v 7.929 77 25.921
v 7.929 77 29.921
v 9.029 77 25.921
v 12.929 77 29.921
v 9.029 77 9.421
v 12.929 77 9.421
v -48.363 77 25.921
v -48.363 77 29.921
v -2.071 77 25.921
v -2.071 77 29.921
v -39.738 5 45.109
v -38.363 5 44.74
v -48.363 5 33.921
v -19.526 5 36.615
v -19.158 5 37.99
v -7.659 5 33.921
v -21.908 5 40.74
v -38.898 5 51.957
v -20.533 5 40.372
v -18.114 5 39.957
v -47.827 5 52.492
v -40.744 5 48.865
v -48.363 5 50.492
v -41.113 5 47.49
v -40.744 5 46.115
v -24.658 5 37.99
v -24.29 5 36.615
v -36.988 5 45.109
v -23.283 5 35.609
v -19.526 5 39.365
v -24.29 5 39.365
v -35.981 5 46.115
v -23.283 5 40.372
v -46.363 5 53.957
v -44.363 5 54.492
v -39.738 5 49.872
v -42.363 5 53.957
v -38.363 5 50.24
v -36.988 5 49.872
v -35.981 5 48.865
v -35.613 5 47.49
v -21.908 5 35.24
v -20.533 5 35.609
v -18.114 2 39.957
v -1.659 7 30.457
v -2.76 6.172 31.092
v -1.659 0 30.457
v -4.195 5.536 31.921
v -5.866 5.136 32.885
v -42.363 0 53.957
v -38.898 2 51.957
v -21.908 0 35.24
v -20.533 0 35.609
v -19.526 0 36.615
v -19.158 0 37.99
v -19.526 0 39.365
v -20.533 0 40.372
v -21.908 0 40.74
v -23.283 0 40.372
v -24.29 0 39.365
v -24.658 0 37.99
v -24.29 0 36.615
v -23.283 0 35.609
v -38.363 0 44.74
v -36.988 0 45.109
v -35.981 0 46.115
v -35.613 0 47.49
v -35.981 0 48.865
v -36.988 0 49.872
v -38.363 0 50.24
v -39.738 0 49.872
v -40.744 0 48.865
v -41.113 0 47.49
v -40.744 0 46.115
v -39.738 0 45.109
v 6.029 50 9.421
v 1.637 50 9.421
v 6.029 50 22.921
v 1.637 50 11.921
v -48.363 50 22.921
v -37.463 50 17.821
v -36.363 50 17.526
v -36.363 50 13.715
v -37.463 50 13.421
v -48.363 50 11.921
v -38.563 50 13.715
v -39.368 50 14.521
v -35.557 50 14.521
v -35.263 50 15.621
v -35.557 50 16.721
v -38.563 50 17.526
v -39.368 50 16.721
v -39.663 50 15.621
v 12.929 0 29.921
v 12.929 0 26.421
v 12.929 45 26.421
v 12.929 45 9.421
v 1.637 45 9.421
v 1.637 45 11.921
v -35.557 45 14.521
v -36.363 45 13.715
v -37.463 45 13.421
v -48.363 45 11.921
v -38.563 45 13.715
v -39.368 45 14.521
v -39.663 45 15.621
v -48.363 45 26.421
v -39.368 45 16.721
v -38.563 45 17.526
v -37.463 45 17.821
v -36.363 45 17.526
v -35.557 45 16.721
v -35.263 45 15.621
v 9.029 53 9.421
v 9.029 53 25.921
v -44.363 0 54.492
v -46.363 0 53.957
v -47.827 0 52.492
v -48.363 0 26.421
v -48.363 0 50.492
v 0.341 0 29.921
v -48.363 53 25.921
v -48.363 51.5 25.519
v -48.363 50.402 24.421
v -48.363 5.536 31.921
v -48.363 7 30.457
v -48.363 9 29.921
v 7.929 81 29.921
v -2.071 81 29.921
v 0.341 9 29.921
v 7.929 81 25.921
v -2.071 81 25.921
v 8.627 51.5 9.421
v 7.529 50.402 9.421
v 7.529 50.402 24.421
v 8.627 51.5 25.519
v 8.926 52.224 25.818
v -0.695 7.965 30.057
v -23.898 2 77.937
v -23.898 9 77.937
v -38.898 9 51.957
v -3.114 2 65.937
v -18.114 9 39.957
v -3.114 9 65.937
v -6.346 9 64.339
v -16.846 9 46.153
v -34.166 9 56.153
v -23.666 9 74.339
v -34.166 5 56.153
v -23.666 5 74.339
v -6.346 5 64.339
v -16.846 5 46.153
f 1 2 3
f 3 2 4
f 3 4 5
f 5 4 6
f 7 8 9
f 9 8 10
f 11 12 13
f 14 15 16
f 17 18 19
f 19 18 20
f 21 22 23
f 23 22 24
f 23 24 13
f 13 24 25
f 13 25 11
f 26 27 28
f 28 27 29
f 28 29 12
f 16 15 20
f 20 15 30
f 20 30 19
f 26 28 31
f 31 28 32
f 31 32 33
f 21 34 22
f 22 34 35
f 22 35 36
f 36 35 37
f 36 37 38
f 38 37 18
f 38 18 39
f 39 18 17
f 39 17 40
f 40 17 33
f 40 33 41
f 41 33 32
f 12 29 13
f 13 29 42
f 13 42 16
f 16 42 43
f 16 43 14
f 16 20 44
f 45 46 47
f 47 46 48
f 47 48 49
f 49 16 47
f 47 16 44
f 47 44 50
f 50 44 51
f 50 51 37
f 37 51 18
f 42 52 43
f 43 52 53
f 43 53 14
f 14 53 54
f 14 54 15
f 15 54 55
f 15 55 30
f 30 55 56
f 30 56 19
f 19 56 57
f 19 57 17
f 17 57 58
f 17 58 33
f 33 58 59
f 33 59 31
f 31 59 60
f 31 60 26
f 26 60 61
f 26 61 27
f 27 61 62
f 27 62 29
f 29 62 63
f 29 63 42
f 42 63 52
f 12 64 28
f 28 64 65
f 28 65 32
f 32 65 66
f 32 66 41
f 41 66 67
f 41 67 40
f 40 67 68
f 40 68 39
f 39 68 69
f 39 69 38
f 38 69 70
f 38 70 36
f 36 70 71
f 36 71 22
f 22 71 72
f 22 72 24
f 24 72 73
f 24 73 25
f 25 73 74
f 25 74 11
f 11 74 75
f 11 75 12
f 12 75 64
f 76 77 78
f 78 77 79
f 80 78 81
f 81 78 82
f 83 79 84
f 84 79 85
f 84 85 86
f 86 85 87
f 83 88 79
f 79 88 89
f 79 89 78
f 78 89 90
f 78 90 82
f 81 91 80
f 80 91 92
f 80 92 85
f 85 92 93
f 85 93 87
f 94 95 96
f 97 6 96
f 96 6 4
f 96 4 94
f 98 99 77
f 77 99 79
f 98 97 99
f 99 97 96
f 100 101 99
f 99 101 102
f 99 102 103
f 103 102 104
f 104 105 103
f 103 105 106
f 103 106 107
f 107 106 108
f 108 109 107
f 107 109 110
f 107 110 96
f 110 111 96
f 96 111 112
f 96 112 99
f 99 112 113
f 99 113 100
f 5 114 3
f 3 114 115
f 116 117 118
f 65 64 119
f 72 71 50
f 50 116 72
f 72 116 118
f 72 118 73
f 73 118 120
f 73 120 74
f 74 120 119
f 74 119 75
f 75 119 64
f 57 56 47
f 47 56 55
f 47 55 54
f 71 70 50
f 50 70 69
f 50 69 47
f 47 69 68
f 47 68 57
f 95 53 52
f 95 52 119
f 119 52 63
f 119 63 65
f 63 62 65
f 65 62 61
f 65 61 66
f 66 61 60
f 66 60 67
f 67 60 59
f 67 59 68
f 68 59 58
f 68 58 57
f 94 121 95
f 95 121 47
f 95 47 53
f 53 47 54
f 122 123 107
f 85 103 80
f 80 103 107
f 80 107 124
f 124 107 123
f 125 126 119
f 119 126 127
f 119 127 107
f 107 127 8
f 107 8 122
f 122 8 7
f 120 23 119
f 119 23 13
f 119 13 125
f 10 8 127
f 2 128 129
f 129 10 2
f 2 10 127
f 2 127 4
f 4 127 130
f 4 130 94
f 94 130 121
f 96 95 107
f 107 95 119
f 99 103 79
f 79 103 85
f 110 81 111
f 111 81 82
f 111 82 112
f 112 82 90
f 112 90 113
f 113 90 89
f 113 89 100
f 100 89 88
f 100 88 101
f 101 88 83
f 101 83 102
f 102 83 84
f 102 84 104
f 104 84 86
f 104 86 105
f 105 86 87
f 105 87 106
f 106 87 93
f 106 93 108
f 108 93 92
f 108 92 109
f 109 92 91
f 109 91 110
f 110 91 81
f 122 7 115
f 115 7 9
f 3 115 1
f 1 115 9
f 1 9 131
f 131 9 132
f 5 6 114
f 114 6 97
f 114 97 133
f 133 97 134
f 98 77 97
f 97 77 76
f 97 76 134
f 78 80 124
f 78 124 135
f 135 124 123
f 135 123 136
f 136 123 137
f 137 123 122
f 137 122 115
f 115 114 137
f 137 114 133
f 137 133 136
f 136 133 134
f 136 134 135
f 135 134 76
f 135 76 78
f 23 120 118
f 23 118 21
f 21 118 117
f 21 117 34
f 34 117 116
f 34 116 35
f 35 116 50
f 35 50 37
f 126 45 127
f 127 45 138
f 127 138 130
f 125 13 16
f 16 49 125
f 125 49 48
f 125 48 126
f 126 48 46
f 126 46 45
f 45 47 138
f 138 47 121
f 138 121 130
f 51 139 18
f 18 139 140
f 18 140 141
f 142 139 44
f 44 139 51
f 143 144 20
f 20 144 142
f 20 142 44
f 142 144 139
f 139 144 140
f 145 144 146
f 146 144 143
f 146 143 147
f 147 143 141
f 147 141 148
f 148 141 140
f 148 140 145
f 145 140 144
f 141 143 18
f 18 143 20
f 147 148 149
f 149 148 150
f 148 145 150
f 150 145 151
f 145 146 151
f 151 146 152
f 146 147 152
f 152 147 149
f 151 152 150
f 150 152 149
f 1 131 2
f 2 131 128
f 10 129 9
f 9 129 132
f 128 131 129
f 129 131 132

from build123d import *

# Parameters (mm, degrees)
SKETCH1_R           = 2.75
BOSS_EXTRUDE1_DEPTH = 50
SKETCH2_R           = 2.2
BOSS_EXTRUDE2_DEPTH = 5
BOSS_EXTRUDE3_DEPTH = 32
SKETCH4_W           = 31.007197848
SKETCH4_H           = 89.787861365
CUT_EXTRUDE1_DEPTH  = 5
FILLET2_R           = 3
SKETCH6_W           = 76.819231413
SKETCH6_H           = 36.721827539
CUT_EXTRUDE2_DEPTH  = 45
FILLET3_R           = 4
SKETCH7_W           = 24
SKETCH7_H           = 3
BOSS_EXTRUDE4_DEPTH = 30
BOSS_EXTRUDE5_DEPTH = 4
SKETCH9_W           = 70
SKETCH9_H           = 5
CUT_EXTRUDE3_DEPTH  = 30
BOSS_EXTRUDE6_DEPTH = 36


with BuildPart() as part:
    # Sketch1 → Boss-Extrude1 (new body)
    with BuildSketch(Plane(origin=(0, 0, 0), x_dir=(1, 0, 0), z_dir=(0, 1, 0))):
        Polygon((-48.36251287, -26.4206039), (-13.721496719, -26.4206039), (12.928503281, -26.4206039), (12.928503281, -29.9206039), (-0.731115662, -29.9206039), (-48.36251287, -57.4206039), align=None)
        with Locations(Location((-21.908030198, -37.990095825, 0), (0, 0, 270))):
            Circle(SKETCH1_R, mode=Mode.SUBTRACT)
        with Locations(Location((-38.36251287, -47.490095825, 0), (0, 0, 270))):
            Circle(SKETCH1_R, mode=Mode.SUBTRACT)
    extrude(amount=BOSS_EXTRUDE1_DEPTH)

    # Sketch2 → Boss-Extrude2 (add)
    with BuildSketch(Plane(origin=(0, 50, 0), x_dir=(1, 0, 0), z_dir=(0, 1, 0))):
        Polygon((-48.36251287, -26.4206039), (12.928503281, -26.4206039), (12.928503281, -4.4206039), (1.63748713, -4.4206039), (1.63748713, -11.9206039), (-48.36251287, -11.9206039), align=None)
        with Locations(Location((-37.46251287, -15.6206039, 0), (0, 0, 270))):
            Circle(SKETCH2_R, mode=Mode.SUBTRACT)
    extrude(amount=-BOSS_EXTRUDE2_DEPTH)

    # Sketch3 → Boss-Extrude3 (add)
    with BuildSketch(Plane(origin=(0, 50, 0), x_dir=(1, 0, 0), z_dir=(0, 1, 0))):
        Polygon((12.928503281, -4.4206039), (9.028503281, -4.4206039), (9.028503281, -25.9206039), (-48.36251287, -25.9206039), (-48.36251287, -29.9206039), (6.778503281, -29.9206039), (12.928503281, -29.9206039), align=None)
    extrude(amount=BOSS_EXTRUDE3_DEPTH)

    # Sketch4 → Cut-Extrude1 (cut)
    with BuildSketch(Plane(origin=(0, 0, 4.4206039), x_dir=(-1, 0, 0), z_dir=(0, 0, -1))):
        with Locations((-11.123097368, 55.483744722)):
            Rectangle(SKETCH4_W, SKETCH4_H)
    extrude(amount=-CUT_EXTRUDE1_DEPTH, mode=Mode.SUBTRACT)

    # Fillet2
    fillet2_edges = [part.edges().sort_by_distance(p)[0] for p in [
        (-19.667004794, 50, 25.9206039),
        (9.028503281, 50, 17.6706039),
    ]]
    fillet(fillet2_edges, radius=FILLET2_R)

    # Sketch6 → Cut-Extrude2 (cut)
    with BuildSketch(Plane(origin=(0, 50, 0), x_dir=(1, 0, 0), z_dir=(0, 1, 0))):
        with Locations((-17.852673028, -48.28151767)):
            Rectangle(SKETCH6_W, SKETCH6_H)
    extrude(amount=-CUT_EXTRUDE2_DEPTH, mode=Mode.SUBTRACT)

    # Fillet3
    fillet3_edges = [part.edges().sort_by_distance(p)[0] for p in [
        (-0.731115662, 2.5, 29.9206039),
        (-48.36251287, 2.5, 57.4206039),
        (-24.546814266, 5, 29.9206039),
    ]]
    fillet(fillet3_edges, radius=FILLET3_R)

    # Sketch7 → Boss-Extrude4 (add)
    with BuildSketch(Plane(origin=(12.773222622, 0, 22.123870557), x_dir=(0.8660254037844415, 0, -0.49999999999999506), z_dir=(0.49999999999999506, 0, 0.8660254037844415))):
        with Locations((-47.665263456, 3.5)):
            Rectangle(SKETCH7_W, SKETCH7_H)
    extrude(amount=BOSS_EXTRUDE4_DEPTH)

    # Sketch8 → Boss-Extrude5 (add)
    with BuildSketch(Plane(origin=(0, 5, 0), x_dir=(1, 0, 0), z_dir=(0, 1, 0))):
        Polygon((-18.113801564, -39.956502285), (-38.898411255, -51.956502285), (-23.898411255, -77.937264399), (-3.113801564, -65.937264399), align=None)
        Polygon((-23.666360447, -74.339188187), (-6.345852372, -64.339188187), (-16.845852372, -46.152654708), (-34.166360447, -56.152654708), align=None, mode=Mode.SUBTRACT)
    extrude(amount=BOSS_EXTRUDE5_DEPTH)

    # Sketch9 → Cut-Extrude3 (cut)
    with BuildSketch(Plane.XY.offset(29.9206039)):
        with Locations((-13.36251287, 79.5)):
            Rectangle(SKETCH9_W, SKETCH9_H)
    extrude(amount=-CUT_EXTRUDE3_DEPTH, mode=Mode.SUBTRACT)

    # Sketch11 → Boss-Extrude6 (add)
    with BuildSketch(Plane(origin=(0, 45, 0), x_dir=(1, 0, 0), z_dir=(0, 1, 0))):
        Polygon((7.928503281, -29.9206039), (-2.071496719, -29.9206039), (-2.071496719, -27.9206039), (-2.071496719, -25.9206039), (7.928503281, -25.9206039), align=None)
    extrude(amount=BOSS_EXTRUDE6_DEPTH)


solid = part.part
